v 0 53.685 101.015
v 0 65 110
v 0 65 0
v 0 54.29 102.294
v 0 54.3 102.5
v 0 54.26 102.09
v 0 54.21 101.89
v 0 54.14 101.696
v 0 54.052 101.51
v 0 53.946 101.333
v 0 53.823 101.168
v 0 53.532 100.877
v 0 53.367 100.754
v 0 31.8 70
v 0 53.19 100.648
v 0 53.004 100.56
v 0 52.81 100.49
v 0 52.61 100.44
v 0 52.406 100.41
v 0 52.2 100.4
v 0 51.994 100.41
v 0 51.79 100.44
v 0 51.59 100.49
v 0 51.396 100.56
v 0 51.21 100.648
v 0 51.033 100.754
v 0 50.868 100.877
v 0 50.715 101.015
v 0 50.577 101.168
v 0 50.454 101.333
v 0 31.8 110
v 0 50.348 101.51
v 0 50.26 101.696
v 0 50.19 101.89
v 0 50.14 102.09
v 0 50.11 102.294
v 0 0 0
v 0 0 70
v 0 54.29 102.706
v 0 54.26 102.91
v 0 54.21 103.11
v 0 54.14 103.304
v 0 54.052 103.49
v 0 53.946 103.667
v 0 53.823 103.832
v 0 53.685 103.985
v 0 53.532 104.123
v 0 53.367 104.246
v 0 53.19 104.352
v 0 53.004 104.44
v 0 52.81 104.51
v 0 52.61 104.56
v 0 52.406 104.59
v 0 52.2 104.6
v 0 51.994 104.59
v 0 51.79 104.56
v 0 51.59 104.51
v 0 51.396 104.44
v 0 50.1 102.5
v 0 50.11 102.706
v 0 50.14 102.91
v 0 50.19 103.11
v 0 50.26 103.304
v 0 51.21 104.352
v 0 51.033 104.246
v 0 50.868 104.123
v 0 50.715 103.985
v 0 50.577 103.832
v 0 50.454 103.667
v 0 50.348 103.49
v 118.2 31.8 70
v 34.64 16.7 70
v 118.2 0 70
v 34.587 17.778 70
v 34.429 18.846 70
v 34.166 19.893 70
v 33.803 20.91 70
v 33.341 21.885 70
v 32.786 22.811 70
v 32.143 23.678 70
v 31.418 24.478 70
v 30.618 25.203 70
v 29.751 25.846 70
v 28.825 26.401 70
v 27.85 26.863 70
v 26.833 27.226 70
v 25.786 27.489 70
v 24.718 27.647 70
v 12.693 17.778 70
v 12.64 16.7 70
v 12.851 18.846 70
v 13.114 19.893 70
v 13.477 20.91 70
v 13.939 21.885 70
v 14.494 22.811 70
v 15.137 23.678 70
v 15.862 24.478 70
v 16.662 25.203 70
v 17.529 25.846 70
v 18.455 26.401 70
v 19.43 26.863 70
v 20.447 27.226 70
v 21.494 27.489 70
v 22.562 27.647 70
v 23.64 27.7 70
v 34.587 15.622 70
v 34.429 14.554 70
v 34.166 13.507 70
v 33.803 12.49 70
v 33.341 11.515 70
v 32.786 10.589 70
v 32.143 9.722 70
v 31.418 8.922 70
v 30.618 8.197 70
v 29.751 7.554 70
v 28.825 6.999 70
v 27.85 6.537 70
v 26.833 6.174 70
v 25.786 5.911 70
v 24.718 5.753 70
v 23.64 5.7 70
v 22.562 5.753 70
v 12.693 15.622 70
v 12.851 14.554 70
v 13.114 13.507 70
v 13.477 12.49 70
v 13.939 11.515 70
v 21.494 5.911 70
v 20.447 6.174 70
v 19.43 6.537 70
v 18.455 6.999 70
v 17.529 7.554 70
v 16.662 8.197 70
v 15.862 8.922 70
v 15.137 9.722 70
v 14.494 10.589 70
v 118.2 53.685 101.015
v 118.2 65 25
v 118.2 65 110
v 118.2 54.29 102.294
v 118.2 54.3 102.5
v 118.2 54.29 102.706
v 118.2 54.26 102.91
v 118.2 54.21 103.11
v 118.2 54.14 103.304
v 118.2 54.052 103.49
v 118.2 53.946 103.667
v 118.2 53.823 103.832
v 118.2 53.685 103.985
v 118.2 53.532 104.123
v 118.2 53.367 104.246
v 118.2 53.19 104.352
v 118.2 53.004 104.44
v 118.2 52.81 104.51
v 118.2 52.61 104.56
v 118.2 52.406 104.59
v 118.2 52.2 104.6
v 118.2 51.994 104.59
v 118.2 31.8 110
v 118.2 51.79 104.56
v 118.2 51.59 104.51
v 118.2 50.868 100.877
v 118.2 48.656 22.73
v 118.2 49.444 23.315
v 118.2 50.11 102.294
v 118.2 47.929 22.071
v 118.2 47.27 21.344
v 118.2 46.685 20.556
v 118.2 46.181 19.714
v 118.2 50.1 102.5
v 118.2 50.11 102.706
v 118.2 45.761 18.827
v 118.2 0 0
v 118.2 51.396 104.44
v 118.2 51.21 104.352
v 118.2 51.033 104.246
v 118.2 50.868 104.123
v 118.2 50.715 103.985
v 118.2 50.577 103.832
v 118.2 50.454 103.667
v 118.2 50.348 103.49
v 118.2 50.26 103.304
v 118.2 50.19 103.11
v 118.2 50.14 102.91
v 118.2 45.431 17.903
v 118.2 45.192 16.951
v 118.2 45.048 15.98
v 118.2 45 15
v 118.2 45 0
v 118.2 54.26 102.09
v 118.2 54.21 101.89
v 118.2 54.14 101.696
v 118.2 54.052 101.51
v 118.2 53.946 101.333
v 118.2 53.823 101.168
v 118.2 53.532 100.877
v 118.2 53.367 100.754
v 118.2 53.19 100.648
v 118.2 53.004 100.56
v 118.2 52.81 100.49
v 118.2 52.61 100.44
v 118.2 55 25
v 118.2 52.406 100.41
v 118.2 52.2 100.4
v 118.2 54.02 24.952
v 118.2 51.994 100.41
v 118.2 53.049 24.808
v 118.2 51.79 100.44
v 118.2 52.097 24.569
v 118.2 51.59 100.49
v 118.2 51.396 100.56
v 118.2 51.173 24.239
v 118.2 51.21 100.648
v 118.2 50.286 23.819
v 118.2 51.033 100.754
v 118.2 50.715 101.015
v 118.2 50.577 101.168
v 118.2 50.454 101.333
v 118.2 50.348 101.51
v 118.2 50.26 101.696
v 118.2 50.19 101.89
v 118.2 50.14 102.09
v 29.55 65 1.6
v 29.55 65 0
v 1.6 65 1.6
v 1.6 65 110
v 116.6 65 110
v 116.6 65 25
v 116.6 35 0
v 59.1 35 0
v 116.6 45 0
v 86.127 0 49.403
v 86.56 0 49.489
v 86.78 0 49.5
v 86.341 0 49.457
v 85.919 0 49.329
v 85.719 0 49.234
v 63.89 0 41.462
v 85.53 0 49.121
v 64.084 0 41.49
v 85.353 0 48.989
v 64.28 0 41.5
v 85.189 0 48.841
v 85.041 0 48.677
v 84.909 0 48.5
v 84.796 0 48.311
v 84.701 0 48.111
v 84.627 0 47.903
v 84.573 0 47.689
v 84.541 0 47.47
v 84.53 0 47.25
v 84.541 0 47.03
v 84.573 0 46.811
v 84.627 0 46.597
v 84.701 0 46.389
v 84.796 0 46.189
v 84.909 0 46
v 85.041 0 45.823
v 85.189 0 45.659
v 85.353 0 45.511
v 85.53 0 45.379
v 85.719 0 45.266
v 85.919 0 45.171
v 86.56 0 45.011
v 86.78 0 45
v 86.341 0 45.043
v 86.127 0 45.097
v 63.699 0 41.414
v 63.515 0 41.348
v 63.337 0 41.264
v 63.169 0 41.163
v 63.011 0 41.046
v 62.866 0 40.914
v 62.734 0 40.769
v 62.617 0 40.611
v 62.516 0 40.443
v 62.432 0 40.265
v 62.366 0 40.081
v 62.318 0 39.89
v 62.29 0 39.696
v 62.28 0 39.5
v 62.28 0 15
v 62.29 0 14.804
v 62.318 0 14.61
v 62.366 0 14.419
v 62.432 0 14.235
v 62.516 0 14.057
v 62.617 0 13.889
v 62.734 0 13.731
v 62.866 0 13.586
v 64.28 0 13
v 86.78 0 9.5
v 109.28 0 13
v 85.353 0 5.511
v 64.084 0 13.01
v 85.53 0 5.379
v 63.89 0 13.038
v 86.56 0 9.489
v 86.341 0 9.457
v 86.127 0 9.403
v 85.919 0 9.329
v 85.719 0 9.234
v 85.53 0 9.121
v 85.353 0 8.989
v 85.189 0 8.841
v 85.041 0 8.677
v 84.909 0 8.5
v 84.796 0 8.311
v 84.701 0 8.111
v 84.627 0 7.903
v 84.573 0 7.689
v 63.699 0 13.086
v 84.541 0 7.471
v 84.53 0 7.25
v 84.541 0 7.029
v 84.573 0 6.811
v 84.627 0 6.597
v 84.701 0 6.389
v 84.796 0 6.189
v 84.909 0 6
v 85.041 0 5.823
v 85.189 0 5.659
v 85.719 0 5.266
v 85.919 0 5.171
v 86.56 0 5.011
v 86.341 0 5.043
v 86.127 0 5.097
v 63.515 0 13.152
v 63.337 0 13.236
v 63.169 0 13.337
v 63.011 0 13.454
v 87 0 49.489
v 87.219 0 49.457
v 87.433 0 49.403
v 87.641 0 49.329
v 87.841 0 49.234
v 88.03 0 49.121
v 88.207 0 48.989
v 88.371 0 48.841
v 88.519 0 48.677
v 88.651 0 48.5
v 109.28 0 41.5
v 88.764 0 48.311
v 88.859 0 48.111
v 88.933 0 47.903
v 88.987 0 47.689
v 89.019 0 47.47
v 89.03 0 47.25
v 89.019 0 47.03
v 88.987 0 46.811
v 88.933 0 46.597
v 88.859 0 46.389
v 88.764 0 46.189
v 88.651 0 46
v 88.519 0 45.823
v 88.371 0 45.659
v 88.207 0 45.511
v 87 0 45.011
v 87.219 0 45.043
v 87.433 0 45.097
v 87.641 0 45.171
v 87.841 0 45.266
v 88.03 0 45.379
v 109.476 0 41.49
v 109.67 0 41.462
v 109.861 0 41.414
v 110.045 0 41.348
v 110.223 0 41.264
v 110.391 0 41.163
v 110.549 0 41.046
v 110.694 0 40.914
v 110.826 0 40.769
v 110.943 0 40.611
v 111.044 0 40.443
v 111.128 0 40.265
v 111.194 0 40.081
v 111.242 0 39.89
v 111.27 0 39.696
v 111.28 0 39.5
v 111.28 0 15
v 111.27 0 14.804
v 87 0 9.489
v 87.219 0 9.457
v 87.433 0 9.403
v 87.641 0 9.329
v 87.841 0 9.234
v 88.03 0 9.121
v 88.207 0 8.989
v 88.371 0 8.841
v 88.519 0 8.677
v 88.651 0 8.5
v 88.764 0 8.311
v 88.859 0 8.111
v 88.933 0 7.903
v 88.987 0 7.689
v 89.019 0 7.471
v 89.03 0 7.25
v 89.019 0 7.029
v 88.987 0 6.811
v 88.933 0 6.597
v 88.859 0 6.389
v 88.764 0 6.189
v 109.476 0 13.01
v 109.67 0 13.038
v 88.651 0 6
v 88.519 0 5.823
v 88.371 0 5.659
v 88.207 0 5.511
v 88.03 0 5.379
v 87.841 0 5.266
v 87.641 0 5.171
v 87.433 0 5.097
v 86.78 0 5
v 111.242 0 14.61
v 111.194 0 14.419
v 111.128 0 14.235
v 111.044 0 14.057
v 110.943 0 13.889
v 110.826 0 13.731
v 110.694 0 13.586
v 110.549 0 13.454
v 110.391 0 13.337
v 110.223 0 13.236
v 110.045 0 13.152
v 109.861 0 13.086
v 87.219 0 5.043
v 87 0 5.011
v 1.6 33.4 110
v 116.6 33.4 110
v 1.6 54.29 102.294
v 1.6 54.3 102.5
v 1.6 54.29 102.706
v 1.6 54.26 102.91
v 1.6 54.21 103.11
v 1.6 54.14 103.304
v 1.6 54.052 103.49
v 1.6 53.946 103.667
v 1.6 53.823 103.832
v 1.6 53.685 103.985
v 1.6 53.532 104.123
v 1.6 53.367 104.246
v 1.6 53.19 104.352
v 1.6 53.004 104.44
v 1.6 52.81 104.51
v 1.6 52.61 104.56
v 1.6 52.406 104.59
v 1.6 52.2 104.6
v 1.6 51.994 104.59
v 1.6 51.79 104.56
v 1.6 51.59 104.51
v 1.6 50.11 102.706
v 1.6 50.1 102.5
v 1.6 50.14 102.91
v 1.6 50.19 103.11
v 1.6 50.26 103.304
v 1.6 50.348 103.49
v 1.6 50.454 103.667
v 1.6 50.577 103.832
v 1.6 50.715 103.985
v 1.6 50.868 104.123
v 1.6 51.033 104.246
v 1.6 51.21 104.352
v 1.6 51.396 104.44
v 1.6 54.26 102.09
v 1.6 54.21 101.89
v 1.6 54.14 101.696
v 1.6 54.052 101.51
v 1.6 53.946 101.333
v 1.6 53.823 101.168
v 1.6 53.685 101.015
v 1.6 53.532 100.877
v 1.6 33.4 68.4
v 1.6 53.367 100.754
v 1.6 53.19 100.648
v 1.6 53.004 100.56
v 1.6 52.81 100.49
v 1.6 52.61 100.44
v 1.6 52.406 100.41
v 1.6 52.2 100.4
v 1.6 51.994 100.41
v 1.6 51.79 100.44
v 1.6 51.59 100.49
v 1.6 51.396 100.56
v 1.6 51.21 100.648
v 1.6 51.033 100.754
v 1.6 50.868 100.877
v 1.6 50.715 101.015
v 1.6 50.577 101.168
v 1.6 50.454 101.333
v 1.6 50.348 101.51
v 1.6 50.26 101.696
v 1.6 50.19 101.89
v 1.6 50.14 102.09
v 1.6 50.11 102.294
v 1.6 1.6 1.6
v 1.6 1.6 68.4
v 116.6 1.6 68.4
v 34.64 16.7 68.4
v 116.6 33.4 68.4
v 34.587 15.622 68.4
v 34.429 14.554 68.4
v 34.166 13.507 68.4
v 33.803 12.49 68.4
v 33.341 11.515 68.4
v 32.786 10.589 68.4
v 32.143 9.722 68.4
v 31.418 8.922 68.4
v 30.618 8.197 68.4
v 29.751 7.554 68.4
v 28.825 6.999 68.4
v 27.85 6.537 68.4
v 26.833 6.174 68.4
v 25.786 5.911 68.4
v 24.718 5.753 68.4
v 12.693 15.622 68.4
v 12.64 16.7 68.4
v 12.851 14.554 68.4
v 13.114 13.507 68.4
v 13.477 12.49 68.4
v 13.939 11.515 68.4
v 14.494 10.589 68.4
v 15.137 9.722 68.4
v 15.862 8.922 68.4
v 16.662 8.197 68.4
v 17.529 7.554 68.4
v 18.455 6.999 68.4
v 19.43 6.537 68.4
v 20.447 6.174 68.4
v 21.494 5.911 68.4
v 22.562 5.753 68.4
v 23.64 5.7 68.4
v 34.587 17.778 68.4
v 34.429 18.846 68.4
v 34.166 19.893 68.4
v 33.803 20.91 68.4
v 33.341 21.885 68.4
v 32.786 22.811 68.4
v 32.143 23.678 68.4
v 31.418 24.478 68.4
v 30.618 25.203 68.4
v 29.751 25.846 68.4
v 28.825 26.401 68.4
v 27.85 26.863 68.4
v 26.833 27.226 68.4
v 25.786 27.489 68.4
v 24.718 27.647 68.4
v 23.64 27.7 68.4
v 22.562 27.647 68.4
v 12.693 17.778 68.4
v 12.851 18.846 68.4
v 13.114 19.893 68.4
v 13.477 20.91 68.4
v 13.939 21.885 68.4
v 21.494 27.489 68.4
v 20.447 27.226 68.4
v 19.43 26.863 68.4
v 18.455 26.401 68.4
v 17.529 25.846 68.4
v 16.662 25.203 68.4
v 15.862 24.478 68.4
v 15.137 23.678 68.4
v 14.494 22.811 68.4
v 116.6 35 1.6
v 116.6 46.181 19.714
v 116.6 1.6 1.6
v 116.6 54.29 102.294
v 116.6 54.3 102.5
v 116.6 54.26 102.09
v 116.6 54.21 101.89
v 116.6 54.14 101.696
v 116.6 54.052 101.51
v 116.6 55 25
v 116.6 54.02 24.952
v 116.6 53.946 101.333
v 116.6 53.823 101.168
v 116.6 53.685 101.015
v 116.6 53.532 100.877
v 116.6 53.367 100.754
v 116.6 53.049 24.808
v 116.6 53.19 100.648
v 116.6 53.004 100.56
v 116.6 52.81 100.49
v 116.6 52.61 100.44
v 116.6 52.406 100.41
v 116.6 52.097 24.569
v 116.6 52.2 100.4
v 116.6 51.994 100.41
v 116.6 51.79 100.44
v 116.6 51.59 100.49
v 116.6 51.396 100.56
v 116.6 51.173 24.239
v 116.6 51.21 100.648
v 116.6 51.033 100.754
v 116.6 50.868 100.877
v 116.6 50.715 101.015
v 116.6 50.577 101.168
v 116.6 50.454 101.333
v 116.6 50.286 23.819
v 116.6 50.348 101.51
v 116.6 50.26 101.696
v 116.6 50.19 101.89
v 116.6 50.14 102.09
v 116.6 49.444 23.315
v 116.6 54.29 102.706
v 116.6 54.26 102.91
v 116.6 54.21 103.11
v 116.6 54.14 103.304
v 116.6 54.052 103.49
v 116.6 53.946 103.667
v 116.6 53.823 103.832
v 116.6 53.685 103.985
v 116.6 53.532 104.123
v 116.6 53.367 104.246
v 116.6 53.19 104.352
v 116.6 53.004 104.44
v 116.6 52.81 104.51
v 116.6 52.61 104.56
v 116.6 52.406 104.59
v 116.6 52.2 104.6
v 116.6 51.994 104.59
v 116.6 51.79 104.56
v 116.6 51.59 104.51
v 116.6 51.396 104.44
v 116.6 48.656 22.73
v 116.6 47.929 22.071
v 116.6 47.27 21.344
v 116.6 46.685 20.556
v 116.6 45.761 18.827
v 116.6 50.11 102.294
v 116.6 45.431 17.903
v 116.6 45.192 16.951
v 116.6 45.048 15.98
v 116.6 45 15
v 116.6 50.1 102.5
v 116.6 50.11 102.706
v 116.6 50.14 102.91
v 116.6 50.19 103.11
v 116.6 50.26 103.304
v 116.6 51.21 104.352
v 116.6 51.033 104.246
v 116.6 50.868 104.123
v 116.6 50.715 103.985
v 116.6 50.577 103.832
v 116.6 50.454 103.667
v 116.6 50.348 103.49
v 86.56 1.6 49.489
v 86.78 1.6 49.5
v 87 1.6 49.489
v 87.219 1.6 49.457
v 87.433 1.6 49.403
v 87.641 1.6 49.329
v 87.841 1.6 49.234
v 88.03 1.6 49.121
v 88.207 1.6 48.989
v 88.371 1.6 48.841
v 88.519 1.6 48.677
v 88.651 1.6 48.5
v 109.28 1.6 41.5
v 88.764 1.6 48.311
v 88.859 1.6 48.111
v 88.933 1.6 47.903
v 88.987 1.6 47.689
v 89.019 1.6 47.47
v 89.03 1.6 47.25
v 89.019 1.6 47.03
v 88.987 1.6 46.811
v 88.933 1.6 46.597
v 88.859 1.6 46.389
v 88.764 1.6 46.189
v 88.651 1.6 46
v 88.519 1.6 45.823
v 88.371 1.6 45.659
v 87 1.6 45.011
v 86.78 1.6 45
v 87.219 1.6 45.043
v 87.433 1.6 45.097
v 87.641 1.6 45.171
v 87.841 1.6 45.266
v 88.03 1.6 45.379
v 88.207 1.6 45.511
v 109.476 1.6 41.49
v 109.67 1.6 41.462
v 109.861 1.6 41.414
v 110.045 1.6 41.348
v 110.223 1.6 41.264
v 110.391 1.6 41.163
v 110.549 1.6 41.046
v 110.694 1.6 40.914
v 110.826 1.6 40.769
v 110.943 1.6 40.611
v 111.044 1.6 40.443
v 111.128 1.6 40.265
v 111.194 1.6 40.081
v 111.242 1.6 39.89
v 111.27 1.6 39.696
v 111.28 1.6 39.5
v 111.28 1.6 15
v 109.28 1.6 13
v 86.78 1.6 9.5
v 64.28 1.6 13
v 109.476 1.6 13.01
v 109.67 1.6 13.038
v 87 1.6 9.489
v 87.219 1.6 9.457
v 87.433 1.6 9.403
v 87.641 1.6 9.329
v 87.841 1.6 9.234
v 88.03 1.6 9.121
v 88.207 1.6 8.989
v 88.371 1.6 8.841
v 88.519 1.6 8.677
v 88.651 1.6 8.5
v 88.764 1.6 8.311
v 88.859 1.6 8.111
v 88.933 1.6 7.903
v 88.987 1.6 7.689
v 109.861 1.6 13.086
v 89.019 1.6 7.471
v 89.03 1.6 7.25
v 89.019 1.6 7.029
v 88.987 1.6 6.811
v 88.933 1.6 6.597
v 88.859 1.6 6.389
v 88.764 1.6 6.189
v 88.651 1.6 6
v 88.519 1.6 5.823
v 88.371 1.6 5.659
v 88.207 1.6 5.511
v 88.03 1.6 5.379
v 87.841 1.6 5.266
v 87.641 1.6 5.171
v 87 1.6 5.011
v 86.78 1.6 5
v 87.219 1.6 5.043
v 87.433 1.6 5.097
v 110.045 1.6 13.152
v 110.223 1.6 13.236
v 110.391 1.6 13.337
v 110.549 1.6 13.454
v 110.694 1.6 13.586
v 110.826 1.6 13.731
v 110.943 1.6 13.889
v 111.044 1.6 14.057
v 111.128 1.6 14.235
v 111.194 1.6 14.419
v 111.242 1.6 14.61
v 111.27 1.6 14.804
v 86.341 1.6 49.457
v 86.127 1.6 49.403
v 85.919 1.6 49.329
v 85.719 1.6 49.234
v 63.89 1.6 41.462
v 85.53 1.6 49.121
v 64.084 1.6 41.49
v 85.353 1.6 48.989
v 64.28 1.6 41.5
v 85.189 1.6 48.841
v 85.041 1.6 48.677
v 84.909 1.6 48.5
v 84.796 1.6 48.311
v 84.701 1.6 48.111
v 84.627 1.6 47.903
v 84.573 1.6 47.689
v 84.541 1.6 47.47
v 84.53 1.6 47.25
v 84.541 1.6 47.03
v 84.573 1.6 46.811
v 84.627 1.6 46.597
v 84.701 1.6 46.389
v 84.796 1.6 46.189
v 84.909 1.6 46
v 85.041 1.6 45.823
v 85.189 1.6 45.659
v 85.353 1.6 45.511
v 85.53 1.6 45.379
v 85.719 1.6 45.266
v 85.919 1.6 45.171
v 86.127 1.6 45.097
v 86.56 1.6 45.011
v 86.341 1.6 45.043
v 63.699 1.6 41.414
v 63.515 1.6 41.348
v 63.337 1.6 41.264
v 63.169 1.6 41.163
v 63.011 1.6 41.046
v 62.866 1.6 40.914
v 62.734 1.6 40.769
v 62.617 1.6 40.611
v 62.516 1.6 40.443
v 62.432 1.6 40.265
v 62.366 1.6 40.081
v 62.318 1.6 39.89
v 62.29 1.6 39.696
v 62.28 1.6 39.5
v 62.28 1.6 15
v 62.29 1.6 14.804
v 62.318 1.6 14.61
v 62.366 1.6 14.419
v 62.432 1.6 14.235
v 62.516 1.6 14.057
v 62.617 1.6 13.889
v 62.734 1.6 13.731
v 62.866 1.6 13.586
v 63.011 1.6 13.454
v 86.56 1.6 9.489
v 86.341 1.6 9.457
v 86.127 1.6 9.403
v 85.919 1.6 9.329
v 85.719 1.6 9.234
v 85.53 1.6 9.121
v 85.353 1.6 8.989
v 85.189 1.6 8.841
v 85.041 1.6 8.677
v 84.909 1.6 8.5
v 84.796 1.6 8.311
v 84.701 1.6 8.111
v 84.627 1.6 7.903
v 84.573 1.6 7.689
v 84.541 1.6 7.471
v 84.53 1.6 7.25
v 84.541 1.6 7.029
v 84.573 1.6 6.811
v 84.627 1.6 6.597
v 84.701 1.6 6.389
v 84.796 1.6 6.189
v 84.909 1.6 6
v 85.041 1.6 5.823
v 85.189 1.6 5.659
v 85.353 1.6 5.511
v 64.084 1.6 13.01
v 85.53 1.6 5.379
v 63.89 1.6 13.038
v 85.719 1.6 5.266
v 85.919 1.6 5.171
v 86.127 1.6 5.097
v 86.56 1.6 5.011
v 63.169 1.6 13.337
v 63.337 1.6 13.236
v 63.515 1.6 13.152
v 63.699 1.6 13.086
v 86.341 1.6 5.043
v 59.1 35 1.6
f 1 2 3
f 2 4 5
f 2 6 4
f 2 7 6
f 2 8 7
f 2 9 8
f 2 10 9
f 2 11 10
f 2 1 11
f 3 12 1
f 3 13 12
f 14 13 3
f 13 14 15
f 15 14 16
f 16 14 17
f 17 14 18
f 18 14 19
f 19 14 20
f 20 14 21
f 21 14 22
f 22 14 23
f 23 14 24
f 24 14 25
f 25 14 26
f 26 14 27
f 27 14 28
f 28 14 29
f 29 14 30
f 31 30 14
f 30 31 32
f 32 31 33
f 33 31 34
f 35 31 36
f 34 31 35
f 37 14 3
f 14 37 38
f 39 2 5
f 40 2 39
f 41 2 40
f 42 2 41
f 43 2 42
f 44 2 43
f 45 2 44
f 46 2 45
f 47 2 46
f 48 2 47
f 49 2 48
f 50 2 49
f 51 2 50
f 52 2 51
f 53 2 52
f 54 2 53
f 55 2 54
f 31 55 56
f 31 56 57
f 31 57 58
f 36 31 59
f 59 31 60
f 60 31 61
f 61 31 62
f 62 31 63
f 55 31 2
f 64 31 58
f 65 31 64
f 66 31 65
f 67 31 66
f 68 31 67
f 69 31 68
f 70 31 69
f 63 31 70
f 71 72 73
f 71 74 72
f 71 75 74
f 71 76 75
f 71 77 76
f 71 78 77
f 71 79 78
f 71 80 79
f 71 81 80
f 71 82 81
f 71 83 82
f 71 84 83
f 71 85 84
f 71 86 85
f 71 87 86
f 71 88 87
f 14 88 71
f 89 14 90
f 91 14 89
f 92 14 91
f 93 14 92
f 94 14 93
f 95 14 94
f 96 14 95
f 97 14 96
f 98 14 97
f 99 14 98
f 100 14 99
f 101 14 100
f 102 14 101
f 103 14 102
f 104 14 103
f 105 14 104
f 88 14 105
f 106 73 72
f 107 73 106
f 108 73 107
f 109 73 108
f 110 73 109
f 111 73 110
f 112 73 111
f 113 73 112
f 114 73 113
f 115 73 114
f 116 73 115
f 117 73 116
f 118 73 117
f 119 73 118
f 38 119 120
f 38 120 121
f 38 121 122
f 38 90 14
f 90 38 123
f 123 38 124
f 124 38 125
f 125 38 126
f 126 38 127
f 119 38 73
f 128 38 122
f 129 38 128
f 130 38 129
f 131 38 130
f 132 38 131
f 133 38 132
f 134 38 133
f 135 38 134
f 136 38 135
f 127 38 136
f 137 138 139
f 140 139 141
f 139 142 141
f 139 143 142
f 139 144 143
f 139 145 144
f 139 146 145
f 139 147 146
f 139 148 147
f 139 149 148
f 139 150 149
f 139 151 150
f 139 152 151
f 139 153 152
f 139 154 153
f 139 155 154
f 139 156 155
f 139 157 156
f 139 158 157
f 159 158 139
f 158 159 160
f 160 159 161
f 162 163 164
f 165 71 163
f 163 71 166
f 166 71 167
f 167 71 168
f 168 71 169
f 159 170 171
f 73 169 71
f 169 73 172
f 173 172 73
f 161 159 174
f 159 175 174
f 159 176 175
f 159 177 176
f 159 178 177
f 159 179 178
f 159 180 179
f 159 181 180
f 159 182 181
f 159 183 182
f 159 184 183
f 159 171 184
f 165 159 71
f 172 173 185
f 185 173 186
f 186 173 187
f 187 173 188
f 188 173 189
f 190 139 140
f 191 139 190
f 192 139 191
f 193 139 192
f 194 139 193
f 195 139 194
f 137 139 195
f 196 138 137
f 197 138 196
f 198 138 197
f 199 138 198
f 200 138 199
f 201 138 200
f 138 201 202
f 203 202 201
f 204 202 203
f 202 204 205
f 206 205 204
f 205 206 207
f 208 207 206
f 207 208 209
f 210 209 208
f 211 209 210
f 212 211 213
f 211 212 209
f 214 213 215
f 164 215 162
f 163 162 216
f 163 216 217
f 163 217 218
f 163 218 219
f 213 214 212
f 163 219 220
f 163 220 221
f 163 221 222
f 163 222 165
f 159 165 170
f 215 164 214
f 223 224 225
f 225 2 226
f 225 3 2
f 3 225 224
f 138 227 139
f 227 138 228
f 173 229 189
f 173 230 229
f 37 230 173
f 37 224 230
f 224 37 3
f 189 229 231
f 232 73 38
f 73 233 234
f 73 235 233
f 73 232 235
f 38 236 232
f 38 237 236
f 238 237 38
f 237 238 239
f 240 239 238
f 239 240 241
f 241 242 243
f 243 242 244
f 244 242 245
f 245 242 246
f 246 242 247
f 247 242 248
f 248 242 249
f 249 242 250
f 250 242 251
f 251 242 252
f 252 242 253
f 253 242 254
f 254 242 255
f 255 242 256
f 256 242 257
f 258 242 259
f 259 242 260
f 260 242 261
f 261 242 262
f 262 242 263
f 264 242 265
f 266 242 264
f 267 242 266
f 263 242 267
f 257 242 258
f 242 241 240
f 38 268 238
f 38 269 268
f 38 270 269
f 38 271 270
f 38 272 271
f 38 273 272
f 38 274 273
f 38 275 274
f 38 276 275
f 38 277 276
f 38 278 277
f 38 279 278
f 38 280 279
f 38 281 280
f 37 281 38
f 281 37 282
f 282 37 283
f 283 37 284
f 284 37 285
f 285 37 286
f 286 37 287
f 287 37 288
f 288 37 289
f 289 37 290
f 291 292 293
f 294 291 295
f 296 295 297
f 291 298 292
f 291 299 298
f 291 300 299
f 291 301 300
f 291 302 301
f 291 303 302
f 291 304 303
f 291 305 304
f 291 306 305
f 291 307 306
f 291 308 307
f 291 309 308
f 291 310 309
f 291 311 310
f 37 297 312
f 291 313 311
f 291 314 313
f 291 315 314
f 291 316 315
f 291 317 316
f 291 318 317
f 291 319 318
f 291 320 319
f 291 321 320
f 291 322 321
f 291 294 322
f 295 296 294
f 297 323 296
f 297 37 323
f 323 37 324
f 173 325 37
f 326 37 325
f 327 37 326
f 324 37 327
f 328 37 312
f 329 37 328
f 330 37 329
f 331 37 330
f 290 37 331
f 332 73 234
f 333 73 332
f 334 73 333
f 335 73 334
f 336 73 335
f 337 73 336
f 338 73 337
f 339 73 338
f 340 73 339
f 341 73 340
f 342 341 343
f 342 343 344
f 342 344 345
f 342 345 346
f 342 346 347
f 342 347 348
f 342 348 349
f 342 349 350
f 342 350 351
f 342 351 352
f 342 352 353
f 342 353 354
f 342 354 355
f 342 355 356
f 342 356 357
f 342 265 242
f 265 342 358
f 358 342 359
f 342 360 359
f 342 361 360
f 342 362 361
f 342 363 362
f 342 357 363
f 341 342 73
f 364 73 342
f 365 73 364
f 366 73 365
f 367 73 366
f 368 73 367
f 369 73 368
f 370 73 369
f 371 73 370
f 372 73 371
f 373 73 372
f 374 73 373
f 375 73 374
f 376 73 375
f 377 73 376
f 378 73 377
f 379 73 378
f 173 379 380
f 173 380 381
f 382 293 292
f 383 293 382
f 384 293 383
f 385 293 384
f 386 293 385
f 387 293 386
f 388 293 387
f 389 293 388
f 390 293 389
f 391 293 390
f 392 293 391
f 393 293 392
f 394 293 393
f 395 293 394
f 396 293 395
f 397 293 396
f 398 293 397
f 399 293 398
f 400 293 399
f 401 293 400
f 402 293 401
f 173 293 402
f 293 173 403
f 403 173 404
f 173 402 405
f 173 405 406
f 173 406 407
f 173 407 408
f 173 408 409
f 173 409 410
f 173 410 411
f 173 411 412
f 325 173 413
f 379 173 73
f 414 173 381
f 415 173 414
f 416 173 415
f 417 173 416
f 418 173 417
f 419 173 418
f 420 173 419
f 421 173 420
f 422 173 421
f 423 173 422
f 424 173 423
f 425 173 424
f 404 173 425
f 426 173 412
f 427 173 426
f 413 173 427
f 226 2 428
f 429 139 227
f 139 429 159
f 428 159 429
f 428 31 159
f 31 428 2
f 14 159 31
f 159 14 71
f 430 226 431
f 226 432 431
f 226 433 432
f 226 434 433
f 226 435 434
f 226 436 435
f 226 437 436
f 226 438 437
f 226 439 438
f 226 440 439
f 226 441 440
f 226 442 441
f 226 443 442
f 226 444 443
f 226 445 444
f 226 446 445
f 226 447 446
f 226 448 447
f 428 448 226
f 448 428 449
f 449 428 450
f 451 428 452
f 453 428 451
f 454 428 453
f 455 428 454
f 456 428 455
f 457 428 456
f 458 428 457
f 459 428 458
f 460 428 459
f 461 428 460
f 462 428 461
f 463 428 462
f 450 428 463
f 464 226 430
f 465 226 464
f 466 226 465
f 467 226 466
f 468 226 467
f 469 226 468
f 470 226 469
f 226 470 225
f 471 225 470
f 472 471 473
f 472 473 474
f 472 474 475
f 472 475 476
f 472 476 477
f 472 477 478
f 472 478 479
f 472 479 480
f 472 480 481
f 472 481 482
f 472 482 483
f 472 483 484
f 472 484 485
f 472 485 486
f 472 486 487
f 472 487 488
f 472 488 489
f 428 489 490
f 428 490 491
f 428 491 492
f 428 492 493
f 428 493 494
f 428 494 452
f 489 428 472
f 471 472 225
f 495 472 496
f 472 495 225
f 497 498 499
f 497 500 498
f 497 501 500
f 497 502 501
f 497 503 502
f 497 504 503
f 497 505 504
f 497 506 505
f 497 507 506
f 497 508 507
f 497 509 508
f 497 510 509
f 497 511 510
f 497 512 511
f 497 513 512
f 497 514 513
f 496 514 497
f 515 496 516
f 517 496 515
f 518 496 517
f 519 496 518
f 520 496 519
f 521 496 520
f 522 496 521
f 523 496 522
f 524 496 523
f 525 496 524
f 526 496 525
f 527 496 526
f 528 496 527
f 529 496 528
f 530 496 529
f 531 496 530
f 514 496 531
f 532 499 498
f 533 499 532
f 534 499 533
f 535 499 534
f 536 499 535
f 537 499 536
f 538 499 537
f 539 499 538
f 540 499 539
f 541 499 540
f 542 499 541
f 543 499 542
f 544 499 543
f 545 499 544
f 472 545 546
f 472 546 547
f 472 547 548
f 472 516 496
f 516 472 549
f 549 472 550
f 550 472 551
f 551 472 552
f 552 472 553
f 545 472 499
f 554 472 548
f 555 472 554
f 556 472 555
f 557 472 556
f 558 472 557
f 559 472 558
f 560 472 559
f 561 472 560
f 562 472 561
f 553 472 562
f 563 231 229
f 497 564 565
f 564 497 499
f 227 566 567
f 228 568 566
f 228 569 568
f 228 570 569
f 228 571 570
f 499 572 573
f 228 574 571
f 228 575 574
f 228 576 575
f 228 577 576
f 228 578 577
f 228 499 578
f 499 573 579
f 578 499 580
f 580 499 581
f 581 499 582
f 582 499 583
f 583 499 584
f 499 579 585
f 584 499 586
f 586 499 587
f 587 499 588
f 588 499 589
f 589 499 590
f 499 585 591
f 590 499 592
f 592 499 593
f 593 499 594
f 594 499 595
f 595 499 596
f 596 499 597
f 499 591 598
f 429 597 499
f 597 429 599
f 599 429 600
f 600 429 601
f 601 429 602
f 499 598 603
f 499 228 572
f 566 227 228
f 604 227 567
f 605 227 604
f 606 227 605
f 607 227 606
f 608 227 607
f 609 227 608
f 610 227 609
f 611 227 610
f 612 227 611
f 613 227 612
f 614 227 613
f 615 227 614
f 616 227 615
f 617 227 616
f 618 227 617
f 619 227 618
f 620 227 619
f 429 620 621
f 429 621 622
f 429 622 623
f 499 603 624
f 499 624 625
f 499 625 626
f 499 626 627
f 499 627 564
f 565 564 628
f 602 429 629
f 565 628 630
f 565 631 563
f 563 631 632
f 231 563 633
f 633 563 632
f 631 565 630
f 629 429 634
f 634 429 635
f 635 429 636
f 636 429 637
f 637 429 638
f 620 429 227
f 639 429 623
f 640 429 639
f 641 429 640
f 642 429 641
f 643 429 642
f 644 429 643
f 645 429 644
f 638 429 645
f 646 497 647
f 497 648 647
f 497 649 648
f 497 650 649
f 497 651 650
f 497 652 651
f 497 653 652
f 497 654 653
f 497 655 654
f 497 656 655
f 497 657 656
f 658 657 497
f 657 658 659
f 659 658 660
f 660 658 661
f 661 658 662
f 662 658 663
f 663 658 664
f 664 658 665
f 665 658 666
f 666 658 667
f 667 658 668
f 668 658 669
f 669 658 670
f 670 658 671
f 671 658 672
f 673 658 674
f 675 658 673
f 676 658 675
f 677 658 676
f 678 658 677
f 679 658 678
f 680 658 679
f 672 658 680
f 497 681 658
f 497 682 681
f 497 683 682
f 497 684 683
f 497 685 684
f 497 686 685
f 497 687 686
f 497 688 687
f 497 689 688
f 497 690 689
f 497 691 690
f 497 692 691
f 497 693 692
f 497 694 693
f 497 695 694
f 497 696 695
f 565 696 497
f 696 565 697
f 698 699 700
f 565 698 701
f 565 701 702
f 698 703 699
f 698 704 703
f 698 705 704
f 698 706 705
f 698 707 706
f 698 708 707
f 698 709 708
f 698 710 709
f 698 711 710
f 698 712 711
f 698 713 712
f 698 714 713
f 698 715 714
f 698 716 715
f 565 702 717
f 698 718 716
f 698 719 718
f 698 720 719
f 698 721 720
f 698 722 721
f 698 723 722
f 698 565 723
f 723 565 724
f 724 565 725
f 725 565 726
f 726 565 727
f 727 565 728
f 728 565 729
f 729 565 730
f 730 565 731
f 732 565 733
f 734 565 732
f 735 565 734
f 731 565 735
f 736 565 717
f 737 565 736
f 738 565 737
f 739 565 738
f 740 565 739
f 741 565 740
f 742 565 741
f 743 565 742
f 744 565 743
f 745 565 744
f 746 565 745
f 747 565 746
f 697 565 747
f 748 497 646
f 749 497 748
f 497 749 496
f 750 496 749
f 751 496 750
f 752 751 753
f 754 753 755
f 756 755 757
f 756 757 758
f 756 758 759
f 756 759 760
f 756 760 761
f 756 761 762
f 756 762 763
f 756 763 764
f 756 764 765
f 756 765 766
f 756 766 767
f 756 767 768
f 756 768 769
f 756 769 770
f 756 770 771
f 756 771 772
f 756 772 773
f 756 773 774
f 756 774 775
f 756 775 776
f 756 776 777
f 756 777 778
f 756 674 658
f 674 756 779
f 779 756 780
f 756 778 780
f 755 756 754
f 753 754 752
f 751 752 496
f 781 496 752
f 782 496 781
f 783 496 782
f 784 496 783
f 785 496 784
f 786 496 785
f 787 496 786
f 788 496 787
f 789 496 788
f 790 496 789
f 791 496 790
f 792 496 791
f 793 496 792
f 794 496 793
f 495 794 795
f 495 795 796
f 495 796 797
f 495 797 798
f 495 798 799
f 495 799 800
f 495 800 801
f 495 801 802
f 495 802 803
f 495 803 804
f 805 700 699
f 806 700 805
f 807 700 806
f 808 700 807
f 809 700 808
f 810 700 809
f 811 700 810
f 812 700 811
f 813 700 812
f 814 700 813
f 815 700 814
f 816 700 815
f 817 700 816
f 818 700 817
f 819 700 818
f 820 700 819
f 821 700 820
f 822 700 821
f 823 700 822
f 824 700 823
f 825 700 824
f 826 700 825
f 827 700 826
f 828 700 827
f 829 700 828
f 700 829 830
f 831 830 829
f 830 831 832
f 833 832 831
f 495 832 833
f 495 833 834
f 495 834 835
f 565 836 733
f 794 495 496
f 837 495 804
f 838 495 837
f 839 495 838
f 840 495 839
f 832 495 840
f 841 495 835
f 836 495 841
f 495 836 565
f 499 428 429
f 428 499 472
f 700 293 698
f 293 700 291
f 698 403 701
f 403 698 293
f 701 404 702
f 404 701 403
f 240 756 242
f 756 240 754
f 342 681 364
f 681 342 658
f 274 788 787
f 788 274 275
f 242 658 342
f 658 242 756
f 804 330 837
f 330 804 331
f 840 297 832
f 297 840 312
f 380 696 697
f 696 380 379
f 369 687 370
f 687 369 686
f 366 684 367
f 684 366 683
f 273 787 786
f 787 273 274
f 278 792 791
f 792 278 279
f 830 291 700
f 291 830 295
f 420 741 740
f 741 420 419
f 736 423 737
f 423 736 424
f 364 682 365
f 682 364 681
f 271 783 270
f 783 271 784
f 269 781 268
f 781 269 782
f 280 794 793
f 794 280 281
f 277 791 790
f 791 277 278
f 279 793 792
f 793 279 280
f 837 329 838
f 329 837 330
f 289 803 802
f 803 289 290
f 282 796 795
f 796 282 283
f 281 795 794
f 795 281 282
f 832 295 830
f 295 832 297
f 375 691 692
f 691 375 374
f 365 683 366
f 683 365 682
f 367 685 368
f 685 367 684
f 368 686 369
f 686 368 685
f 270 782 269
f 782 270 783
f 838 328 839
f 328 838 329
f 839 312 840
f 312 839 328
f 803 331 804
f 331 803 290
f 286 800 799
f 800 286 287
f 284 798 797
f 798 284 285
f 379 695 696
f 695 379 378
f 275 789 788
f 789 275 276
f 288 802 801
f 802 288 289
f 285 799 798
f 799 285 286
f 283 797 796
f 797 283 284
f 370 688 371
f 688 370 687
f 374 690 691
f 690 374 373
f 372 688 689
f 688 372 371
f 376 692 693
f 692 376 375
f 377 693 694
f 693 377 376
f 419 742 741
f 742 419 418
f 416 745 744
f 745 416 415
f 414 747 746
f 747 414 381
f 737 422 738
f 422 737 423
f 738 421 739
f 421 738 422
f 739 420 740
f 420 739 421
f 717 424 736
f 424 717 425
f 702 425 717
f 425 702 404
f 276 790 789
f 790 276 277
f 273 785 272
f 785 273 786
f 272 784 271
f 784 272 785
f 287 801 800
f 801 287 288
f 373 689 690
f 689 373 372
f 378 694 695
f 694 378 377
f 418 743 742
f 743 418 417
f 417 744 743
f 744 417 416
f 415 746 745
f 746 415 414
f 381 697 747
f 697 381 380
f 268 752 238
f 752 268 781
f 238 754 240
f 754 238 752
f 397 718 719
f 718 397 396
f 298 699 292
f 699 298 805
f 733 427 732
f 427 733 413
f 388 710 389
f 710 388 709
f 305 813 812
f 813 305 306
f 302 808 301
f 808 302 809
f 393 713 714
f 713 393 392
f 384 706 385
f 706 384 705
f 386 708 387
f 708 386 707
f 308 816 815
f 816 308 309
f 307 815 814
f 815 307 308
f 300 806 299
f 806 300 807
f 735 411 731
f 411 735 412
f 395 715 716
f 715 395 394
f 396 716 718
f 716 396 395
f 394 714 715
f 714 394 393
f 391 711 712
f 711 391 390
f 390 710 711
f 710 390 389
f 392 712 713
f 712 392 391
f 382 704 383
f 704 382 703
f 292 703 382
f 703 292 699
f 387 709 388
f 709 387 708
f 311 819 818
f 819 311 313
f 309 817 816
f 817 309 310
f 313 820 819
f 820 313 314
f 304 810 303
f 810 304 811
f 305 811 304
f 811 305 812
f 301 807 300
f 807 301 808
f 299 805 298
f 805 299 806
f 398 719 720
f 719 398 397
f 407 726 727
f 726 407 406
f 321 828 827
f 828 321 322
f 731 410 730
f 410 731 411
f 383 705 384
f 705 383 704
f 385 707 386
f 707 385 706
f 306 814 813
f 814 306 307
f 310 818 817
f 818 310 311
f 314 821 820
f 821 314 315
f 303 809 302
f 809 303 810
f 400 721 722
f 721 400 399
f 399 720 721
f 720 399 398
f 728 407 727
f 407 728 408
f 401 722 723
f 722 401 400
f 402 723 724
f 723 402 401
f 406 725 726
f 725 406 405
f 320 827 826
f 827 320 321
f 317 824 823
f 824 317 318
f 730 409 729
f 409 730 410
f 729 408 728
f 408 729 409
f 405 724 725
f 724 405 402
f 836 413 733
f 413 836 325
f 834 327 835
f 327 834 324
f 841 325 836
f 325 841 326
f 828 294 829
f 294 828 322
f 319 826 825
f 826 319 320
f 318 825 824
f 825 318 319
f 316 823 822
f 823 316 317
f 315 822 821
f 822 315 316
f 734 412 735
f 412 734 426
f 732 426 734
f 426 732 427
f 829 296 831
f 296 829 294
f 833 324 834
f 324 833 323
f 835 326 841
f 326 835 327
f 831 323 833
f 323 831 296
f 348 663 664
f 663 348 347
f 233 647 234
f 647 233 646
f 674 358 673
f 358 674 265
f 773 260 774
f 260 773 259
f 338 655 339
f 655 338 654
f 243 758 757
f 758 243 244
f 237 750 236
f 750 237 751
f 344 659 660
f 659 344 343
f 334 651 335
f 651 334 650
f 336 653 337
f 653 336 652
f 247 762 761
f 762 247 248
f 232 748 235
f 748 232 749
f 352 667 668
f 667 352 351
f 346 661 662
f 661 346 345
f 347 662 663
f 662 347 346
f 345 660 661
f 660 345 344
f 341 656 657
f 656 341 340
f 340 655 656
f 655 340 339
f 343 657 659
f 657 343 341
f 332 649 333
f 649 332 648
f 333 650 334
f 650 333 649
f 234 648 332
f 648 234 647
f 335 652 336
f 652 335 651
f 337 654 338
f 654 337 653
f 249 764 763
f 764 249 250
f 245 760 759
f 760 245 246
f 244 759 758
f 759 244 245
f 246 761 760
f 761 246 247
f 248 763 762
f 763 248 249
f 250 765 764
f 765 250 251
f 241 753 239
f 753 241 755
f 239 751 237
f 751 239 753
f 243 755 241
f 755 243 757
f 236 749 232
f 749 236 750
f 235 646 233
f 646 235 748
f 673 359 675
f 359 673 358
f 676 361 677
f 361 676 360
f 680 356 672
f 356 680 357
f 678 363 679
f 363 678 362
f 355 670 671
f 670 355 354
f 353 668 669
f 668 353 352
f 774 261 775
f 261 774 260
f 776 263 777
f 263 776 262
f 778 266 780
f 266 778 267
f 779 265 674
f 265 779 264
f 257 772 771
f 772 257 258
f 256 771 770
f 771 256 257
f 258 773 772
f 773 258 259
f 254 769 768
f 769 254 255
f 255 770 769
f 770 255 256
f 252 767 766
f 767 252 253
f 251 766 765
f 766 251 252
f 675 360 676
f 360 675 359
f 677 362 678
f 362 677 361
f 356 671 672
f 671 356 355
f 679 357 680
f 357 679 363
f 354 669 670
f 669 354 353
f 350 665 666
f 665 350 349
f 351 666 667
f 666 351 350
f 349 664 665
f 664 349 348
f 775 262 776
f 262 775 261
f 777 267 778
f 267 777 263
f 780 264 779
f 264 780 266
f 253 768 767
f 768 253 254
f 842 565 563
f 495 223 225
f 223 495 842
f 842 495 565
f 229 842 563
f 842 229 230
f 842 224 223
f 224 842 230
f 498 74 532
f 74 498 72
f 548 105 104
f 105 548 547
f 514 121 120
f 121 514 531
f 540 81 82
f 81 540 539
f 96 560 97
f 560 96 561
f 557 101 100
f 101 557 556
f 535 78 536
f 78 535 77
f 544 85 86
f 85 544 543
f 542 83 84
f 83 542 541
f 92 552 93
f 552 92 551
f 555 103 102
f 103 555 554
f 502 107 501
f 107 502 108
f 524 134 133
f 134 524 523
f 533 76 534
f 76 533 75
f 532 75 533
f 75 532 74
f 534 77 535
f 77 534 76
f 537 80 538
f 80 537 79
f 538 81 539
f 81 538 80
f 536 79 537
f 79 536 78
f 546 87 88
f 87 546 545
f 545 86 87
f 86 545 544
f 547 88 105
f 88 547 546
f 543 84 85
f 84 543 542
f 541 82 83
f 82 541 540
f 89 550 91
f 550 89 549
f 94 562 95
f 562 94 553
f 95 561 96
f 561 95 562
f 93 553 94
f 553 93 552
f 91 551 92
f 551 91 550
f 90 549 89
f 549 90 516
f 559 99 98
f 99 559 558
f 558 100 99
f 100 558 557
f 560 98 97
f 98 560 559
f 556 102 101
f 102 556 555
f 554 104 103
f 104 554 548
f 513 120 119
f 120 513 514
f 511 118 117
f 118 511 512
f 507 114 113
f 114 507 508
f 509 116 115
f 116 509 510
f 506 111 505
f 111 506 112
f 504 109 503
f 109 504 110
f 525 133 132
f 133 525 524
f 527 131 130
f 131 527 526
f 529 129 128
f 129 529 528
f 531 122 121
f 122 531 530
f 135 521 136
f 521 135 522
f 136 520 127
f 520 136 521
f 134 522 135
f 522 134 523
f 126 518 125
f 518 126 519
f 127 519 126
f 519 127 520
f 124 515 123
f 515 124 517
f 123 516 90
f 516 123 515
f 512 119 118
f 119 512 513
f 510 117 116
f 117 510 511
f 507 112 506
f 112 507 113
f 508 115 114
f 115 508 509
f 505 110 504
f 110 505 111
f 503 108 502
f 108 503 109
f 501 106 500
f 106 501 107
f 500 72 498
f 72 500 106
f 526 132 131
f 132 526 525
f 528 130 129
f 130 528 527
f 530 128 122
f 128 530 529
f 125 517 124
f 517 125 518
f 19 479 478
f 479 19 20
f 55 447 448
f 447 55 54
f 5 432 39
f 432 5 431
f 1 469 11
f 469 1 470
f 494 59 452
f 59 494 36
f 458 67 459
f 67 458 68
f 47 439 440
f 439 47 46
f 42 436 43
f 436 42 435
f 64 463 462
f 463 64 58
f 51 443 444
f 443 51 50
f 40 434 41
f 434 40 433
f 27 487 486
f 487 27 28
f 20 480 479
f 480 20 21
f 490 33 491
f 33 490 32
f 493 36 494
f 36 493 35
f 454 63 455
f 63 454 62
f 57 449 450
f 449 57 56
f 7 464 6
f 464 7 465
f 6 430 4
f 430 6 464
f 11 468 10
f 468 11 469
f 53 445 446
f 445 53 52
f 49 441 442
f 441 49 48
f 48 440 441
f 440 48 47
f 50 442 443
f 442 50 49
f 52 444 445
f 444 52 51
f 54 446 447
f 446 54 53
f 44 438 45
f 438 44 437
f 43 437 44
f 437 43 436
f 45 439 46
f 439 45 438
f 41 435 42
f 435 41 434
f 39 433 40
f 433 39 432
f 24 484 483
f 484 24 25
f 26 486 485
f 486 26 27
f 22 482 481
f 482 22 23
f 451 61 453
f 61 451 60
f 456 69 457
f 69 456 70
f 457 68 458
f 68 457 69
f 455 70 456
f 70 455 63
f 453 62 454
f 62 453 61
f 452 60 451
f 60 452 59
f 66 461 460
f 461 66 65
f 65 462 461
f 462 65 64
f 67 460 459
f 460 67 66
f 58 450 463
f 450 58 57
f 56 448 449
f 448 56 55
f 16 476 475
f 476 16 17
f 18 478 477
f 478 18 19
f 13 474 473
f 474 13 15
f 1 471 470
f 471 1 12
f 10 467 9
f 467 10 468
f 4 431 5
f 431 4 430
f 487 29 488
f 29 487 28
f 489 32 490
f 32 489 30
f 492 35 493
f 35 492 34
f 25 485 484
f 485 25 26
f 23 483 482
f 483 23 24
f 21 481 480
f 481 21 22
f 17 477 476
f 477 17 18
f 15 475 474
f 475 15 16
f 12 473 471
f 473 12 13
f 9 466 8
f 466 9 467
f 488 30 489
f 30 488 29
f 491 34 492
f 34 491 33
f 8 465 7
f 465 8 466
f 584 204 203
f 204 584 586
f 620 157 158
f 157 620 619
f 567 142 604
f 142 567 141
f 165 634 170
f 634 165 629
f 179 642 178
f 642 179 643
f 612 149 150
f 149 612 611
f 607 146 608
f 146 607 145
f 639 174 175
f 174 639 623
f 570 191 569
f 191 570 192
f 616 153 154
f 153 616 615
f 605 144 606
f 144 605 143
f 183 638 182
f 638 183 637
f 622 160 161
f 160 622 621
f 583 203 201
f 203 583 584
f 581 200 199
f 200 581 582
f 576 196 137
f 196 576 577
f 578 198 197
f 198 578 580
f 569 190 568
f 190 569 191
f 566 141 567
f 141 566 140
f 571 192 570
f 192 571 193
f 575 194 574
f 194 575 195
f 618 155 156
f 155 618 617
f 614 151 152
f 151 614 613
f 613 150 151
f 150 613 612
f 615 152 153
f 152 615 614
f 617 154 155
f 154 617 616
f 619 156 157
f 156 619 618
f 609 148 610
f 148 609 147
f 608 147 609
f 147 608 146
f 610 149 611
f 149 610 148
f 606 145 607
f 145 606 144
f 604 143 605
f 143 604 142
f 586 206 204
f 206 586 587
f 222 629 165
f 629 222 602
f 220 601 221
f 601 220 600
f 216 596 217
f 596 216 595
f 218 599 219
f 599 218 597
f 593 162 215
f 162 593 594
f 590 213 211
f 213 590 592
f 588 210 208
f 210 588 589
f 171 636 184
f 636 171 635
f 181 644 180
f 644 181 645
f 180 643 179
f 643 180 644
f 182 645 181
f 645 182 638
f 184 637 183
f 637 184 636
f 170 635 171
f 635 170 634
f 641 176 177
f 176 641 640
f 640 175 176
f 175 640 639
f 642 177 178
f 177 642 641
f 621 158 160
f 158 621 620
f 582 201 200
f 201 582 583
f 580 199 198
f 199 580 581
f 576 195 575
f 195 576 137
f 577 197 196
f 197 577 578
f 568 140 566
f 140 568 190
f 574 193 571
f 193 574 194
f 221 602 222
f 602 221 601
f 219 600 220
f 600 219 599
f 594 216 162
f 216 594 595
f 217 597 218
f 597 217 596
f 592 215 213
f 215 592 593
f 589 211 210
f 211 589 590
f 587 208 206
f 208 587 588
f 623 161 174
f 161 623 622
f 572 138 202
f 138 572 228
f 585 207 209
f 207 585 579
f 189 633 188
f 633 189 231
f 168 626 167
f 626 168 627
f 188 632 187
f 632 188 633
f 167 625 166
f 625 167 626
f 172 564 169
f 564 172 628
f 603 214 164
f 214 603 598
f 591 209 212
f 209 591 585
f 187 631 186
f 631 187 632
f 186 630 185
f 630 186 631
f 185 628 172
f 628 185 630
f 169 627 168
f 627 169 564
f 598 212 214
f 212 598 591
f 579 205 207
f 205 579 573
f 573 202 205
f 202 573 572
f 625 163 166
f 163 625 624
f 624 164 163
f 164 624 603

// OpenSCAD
/**
 * Cover for the Meanwell LRS 350 Series of Power Supplies
 *
 * by Hendrik Busch is licensed under a 
 * 
 * Creative Commons Attribution-ShareAlike 4.0 International License.
 */
 
/* [Cover Settings] */

wallThickness = 1.6;

coverHeight = 65;

coverLength = 110;

additionalScrewOverlap = 7.5;

sideCutoutWidth = 20;
sideCutoutHeight = 25;

additionalHoleForSwitch = true;
holeDiameterForSwitch = 22;

/* [Power Supply] */

powerSupplyWidth = 115;
powerSupplyHeight = 30;
powerSupplyLength = 215;

powerSupplyHoleDiameter = 4.5;
sideToScrewDistance = 32.5;
bottomToScrewDistance = 12.8;

/* [C14 Connector] */

connectorWidth = 49;
connectorHeight = 28.5;
connectorHoleDiameter = 4.5;
connectorHoleSpacing = 40;

/* [hidden] */

part_cover();

// Smoothness of round shapes
$fn = 64;

// double wall thickness
dwt = 2 * wallThickness;

// mounting latch length
mll = sideToScrewDistance + additionalScrewOverlap;

// effective width of the cover
coverWidth = powerSupplyWidth + dwt;

// support configuration
supportThickness = 5;
supportWidth = (coverHeight - powerSupplyHeight - dwt) / 3;
supportAngle = 25;
supportLegLength = supportWidth / tan(supportAngle);

/**
 * Creates the final cover by adding cutouts to the cover body.
 */
module part_cover() {
    difference() {
        sub_body();
        translate([(coverWidth - connectorWidth) * 0.9, 5, 5]) rotate([90, 0, 0]) sub_c14Connector();
        if (additionalHoleForSwitch) {
            translate([coverWidth * 0.2, (coverHeight - powerSupplyHeight - wallThickness)/2, coverLength - mll - wallThickness - 0.1]) cylinder(d = holeDiameterForSwitch, h = dwt);
        }
        translate([-wallThickness + 0.1, coverHeight - bottomToScrewDistance, coverLength - additionalScrewOverlap]) rotate([0, 90, 0]) cylinder(d = 4.2, h = dwt);
        translate([coverWidth - wallThickness - 0.1, coverHeight - bottomToScrewDistance, coverLength - additionalScrewOverlap]) rotate([0, 90, 0]) cylinder(d = 4.2, h = dwt);
        hull() {
            translate([coverWidth - wallThickness - 0.1, coverHeight - sideCutoutWidth/2, sideCutoutHeight - sideCutoutWidth/2]) rotate([0, 90, 0]) cylinder(d = sideCutoutWidth, h = dwt);
            translate([coverWidth - wallThickness - 0.1, coverHeight - 0.1, 0]) cube([dwt, 1, sideCutoutHeight]);
            translate([coverWidth - wallThickness - 0.1, coverHeight - sideCutoutWidth, -0.1]) cube([dwt, sideCutoutWidth, 1]);
        }
    }

}

/**
 * Generates the main body of the cover without any cutouts.
 */
module sub_body() {
    difference() {
        union() {
            cube([coverWidth, coverHeight, coverLength - mll]);
            translate([0, coverHeight - powerSupplyHeight - dwt, coverLength - mll]) cube([coverWidth, powerSupplyHeight + dwt, mll]);
        }
        translate([wallThickness, wallThickness, -0.1]) cube([coverWidth - dwt, coverHeight - wallThickness + 0.1, coverLength - mll - wallThickness + 0.1]);
        translate([wallThickness, coverHeight - powerSupplyHeight - wallThickness, coverLength - mll - dwt]) cube([coverWidth - dwt, powerSupplyHeight + wallThickness + 0.1, mll + dwt + 0.1]);
    }
    cube([coverWidth, coverHeight - powerSupplyHeight, wallThickness]);
    linear_extrude(height = wallThickness) polygon(points = [[0, coverHeight - powerSupplyHeight], [coverWidth/2, coverHeight - powerSupplyHeight], [coverWidth/4, coverHeight], [0, coverHeight]]); 
}

/**
 * Represents the cutout for an IEC-60320 C14 connector with fuse and switch. Use this
 * as a difference with your solid body to produce a cutout.
 */
module sub_c14Connector() {
    rounded = 2;
    translate([0, (connectorHoleSpacing + connectorHoleDiameter)/2 - connectorHeight/2, 0]) {
        translate([rounded, rounded, 0]) linear_extrude(height = 10) offset(r = rounded) square([connectorWidth - rounded*2, connectorHeight - rounded*2]);
        translate([connectorWidth/2, (connectorHoleSpacing - connectorHeight)/-2, 0]) cylinder(d = connectorHoleDiameter, h = 10);
        translate([connectorWidth/2, (connectorHoleSpacing + connectorHeight)/2, 0]) cylinder(d = connectorHoleDiameter, h = 10);
    }
}
